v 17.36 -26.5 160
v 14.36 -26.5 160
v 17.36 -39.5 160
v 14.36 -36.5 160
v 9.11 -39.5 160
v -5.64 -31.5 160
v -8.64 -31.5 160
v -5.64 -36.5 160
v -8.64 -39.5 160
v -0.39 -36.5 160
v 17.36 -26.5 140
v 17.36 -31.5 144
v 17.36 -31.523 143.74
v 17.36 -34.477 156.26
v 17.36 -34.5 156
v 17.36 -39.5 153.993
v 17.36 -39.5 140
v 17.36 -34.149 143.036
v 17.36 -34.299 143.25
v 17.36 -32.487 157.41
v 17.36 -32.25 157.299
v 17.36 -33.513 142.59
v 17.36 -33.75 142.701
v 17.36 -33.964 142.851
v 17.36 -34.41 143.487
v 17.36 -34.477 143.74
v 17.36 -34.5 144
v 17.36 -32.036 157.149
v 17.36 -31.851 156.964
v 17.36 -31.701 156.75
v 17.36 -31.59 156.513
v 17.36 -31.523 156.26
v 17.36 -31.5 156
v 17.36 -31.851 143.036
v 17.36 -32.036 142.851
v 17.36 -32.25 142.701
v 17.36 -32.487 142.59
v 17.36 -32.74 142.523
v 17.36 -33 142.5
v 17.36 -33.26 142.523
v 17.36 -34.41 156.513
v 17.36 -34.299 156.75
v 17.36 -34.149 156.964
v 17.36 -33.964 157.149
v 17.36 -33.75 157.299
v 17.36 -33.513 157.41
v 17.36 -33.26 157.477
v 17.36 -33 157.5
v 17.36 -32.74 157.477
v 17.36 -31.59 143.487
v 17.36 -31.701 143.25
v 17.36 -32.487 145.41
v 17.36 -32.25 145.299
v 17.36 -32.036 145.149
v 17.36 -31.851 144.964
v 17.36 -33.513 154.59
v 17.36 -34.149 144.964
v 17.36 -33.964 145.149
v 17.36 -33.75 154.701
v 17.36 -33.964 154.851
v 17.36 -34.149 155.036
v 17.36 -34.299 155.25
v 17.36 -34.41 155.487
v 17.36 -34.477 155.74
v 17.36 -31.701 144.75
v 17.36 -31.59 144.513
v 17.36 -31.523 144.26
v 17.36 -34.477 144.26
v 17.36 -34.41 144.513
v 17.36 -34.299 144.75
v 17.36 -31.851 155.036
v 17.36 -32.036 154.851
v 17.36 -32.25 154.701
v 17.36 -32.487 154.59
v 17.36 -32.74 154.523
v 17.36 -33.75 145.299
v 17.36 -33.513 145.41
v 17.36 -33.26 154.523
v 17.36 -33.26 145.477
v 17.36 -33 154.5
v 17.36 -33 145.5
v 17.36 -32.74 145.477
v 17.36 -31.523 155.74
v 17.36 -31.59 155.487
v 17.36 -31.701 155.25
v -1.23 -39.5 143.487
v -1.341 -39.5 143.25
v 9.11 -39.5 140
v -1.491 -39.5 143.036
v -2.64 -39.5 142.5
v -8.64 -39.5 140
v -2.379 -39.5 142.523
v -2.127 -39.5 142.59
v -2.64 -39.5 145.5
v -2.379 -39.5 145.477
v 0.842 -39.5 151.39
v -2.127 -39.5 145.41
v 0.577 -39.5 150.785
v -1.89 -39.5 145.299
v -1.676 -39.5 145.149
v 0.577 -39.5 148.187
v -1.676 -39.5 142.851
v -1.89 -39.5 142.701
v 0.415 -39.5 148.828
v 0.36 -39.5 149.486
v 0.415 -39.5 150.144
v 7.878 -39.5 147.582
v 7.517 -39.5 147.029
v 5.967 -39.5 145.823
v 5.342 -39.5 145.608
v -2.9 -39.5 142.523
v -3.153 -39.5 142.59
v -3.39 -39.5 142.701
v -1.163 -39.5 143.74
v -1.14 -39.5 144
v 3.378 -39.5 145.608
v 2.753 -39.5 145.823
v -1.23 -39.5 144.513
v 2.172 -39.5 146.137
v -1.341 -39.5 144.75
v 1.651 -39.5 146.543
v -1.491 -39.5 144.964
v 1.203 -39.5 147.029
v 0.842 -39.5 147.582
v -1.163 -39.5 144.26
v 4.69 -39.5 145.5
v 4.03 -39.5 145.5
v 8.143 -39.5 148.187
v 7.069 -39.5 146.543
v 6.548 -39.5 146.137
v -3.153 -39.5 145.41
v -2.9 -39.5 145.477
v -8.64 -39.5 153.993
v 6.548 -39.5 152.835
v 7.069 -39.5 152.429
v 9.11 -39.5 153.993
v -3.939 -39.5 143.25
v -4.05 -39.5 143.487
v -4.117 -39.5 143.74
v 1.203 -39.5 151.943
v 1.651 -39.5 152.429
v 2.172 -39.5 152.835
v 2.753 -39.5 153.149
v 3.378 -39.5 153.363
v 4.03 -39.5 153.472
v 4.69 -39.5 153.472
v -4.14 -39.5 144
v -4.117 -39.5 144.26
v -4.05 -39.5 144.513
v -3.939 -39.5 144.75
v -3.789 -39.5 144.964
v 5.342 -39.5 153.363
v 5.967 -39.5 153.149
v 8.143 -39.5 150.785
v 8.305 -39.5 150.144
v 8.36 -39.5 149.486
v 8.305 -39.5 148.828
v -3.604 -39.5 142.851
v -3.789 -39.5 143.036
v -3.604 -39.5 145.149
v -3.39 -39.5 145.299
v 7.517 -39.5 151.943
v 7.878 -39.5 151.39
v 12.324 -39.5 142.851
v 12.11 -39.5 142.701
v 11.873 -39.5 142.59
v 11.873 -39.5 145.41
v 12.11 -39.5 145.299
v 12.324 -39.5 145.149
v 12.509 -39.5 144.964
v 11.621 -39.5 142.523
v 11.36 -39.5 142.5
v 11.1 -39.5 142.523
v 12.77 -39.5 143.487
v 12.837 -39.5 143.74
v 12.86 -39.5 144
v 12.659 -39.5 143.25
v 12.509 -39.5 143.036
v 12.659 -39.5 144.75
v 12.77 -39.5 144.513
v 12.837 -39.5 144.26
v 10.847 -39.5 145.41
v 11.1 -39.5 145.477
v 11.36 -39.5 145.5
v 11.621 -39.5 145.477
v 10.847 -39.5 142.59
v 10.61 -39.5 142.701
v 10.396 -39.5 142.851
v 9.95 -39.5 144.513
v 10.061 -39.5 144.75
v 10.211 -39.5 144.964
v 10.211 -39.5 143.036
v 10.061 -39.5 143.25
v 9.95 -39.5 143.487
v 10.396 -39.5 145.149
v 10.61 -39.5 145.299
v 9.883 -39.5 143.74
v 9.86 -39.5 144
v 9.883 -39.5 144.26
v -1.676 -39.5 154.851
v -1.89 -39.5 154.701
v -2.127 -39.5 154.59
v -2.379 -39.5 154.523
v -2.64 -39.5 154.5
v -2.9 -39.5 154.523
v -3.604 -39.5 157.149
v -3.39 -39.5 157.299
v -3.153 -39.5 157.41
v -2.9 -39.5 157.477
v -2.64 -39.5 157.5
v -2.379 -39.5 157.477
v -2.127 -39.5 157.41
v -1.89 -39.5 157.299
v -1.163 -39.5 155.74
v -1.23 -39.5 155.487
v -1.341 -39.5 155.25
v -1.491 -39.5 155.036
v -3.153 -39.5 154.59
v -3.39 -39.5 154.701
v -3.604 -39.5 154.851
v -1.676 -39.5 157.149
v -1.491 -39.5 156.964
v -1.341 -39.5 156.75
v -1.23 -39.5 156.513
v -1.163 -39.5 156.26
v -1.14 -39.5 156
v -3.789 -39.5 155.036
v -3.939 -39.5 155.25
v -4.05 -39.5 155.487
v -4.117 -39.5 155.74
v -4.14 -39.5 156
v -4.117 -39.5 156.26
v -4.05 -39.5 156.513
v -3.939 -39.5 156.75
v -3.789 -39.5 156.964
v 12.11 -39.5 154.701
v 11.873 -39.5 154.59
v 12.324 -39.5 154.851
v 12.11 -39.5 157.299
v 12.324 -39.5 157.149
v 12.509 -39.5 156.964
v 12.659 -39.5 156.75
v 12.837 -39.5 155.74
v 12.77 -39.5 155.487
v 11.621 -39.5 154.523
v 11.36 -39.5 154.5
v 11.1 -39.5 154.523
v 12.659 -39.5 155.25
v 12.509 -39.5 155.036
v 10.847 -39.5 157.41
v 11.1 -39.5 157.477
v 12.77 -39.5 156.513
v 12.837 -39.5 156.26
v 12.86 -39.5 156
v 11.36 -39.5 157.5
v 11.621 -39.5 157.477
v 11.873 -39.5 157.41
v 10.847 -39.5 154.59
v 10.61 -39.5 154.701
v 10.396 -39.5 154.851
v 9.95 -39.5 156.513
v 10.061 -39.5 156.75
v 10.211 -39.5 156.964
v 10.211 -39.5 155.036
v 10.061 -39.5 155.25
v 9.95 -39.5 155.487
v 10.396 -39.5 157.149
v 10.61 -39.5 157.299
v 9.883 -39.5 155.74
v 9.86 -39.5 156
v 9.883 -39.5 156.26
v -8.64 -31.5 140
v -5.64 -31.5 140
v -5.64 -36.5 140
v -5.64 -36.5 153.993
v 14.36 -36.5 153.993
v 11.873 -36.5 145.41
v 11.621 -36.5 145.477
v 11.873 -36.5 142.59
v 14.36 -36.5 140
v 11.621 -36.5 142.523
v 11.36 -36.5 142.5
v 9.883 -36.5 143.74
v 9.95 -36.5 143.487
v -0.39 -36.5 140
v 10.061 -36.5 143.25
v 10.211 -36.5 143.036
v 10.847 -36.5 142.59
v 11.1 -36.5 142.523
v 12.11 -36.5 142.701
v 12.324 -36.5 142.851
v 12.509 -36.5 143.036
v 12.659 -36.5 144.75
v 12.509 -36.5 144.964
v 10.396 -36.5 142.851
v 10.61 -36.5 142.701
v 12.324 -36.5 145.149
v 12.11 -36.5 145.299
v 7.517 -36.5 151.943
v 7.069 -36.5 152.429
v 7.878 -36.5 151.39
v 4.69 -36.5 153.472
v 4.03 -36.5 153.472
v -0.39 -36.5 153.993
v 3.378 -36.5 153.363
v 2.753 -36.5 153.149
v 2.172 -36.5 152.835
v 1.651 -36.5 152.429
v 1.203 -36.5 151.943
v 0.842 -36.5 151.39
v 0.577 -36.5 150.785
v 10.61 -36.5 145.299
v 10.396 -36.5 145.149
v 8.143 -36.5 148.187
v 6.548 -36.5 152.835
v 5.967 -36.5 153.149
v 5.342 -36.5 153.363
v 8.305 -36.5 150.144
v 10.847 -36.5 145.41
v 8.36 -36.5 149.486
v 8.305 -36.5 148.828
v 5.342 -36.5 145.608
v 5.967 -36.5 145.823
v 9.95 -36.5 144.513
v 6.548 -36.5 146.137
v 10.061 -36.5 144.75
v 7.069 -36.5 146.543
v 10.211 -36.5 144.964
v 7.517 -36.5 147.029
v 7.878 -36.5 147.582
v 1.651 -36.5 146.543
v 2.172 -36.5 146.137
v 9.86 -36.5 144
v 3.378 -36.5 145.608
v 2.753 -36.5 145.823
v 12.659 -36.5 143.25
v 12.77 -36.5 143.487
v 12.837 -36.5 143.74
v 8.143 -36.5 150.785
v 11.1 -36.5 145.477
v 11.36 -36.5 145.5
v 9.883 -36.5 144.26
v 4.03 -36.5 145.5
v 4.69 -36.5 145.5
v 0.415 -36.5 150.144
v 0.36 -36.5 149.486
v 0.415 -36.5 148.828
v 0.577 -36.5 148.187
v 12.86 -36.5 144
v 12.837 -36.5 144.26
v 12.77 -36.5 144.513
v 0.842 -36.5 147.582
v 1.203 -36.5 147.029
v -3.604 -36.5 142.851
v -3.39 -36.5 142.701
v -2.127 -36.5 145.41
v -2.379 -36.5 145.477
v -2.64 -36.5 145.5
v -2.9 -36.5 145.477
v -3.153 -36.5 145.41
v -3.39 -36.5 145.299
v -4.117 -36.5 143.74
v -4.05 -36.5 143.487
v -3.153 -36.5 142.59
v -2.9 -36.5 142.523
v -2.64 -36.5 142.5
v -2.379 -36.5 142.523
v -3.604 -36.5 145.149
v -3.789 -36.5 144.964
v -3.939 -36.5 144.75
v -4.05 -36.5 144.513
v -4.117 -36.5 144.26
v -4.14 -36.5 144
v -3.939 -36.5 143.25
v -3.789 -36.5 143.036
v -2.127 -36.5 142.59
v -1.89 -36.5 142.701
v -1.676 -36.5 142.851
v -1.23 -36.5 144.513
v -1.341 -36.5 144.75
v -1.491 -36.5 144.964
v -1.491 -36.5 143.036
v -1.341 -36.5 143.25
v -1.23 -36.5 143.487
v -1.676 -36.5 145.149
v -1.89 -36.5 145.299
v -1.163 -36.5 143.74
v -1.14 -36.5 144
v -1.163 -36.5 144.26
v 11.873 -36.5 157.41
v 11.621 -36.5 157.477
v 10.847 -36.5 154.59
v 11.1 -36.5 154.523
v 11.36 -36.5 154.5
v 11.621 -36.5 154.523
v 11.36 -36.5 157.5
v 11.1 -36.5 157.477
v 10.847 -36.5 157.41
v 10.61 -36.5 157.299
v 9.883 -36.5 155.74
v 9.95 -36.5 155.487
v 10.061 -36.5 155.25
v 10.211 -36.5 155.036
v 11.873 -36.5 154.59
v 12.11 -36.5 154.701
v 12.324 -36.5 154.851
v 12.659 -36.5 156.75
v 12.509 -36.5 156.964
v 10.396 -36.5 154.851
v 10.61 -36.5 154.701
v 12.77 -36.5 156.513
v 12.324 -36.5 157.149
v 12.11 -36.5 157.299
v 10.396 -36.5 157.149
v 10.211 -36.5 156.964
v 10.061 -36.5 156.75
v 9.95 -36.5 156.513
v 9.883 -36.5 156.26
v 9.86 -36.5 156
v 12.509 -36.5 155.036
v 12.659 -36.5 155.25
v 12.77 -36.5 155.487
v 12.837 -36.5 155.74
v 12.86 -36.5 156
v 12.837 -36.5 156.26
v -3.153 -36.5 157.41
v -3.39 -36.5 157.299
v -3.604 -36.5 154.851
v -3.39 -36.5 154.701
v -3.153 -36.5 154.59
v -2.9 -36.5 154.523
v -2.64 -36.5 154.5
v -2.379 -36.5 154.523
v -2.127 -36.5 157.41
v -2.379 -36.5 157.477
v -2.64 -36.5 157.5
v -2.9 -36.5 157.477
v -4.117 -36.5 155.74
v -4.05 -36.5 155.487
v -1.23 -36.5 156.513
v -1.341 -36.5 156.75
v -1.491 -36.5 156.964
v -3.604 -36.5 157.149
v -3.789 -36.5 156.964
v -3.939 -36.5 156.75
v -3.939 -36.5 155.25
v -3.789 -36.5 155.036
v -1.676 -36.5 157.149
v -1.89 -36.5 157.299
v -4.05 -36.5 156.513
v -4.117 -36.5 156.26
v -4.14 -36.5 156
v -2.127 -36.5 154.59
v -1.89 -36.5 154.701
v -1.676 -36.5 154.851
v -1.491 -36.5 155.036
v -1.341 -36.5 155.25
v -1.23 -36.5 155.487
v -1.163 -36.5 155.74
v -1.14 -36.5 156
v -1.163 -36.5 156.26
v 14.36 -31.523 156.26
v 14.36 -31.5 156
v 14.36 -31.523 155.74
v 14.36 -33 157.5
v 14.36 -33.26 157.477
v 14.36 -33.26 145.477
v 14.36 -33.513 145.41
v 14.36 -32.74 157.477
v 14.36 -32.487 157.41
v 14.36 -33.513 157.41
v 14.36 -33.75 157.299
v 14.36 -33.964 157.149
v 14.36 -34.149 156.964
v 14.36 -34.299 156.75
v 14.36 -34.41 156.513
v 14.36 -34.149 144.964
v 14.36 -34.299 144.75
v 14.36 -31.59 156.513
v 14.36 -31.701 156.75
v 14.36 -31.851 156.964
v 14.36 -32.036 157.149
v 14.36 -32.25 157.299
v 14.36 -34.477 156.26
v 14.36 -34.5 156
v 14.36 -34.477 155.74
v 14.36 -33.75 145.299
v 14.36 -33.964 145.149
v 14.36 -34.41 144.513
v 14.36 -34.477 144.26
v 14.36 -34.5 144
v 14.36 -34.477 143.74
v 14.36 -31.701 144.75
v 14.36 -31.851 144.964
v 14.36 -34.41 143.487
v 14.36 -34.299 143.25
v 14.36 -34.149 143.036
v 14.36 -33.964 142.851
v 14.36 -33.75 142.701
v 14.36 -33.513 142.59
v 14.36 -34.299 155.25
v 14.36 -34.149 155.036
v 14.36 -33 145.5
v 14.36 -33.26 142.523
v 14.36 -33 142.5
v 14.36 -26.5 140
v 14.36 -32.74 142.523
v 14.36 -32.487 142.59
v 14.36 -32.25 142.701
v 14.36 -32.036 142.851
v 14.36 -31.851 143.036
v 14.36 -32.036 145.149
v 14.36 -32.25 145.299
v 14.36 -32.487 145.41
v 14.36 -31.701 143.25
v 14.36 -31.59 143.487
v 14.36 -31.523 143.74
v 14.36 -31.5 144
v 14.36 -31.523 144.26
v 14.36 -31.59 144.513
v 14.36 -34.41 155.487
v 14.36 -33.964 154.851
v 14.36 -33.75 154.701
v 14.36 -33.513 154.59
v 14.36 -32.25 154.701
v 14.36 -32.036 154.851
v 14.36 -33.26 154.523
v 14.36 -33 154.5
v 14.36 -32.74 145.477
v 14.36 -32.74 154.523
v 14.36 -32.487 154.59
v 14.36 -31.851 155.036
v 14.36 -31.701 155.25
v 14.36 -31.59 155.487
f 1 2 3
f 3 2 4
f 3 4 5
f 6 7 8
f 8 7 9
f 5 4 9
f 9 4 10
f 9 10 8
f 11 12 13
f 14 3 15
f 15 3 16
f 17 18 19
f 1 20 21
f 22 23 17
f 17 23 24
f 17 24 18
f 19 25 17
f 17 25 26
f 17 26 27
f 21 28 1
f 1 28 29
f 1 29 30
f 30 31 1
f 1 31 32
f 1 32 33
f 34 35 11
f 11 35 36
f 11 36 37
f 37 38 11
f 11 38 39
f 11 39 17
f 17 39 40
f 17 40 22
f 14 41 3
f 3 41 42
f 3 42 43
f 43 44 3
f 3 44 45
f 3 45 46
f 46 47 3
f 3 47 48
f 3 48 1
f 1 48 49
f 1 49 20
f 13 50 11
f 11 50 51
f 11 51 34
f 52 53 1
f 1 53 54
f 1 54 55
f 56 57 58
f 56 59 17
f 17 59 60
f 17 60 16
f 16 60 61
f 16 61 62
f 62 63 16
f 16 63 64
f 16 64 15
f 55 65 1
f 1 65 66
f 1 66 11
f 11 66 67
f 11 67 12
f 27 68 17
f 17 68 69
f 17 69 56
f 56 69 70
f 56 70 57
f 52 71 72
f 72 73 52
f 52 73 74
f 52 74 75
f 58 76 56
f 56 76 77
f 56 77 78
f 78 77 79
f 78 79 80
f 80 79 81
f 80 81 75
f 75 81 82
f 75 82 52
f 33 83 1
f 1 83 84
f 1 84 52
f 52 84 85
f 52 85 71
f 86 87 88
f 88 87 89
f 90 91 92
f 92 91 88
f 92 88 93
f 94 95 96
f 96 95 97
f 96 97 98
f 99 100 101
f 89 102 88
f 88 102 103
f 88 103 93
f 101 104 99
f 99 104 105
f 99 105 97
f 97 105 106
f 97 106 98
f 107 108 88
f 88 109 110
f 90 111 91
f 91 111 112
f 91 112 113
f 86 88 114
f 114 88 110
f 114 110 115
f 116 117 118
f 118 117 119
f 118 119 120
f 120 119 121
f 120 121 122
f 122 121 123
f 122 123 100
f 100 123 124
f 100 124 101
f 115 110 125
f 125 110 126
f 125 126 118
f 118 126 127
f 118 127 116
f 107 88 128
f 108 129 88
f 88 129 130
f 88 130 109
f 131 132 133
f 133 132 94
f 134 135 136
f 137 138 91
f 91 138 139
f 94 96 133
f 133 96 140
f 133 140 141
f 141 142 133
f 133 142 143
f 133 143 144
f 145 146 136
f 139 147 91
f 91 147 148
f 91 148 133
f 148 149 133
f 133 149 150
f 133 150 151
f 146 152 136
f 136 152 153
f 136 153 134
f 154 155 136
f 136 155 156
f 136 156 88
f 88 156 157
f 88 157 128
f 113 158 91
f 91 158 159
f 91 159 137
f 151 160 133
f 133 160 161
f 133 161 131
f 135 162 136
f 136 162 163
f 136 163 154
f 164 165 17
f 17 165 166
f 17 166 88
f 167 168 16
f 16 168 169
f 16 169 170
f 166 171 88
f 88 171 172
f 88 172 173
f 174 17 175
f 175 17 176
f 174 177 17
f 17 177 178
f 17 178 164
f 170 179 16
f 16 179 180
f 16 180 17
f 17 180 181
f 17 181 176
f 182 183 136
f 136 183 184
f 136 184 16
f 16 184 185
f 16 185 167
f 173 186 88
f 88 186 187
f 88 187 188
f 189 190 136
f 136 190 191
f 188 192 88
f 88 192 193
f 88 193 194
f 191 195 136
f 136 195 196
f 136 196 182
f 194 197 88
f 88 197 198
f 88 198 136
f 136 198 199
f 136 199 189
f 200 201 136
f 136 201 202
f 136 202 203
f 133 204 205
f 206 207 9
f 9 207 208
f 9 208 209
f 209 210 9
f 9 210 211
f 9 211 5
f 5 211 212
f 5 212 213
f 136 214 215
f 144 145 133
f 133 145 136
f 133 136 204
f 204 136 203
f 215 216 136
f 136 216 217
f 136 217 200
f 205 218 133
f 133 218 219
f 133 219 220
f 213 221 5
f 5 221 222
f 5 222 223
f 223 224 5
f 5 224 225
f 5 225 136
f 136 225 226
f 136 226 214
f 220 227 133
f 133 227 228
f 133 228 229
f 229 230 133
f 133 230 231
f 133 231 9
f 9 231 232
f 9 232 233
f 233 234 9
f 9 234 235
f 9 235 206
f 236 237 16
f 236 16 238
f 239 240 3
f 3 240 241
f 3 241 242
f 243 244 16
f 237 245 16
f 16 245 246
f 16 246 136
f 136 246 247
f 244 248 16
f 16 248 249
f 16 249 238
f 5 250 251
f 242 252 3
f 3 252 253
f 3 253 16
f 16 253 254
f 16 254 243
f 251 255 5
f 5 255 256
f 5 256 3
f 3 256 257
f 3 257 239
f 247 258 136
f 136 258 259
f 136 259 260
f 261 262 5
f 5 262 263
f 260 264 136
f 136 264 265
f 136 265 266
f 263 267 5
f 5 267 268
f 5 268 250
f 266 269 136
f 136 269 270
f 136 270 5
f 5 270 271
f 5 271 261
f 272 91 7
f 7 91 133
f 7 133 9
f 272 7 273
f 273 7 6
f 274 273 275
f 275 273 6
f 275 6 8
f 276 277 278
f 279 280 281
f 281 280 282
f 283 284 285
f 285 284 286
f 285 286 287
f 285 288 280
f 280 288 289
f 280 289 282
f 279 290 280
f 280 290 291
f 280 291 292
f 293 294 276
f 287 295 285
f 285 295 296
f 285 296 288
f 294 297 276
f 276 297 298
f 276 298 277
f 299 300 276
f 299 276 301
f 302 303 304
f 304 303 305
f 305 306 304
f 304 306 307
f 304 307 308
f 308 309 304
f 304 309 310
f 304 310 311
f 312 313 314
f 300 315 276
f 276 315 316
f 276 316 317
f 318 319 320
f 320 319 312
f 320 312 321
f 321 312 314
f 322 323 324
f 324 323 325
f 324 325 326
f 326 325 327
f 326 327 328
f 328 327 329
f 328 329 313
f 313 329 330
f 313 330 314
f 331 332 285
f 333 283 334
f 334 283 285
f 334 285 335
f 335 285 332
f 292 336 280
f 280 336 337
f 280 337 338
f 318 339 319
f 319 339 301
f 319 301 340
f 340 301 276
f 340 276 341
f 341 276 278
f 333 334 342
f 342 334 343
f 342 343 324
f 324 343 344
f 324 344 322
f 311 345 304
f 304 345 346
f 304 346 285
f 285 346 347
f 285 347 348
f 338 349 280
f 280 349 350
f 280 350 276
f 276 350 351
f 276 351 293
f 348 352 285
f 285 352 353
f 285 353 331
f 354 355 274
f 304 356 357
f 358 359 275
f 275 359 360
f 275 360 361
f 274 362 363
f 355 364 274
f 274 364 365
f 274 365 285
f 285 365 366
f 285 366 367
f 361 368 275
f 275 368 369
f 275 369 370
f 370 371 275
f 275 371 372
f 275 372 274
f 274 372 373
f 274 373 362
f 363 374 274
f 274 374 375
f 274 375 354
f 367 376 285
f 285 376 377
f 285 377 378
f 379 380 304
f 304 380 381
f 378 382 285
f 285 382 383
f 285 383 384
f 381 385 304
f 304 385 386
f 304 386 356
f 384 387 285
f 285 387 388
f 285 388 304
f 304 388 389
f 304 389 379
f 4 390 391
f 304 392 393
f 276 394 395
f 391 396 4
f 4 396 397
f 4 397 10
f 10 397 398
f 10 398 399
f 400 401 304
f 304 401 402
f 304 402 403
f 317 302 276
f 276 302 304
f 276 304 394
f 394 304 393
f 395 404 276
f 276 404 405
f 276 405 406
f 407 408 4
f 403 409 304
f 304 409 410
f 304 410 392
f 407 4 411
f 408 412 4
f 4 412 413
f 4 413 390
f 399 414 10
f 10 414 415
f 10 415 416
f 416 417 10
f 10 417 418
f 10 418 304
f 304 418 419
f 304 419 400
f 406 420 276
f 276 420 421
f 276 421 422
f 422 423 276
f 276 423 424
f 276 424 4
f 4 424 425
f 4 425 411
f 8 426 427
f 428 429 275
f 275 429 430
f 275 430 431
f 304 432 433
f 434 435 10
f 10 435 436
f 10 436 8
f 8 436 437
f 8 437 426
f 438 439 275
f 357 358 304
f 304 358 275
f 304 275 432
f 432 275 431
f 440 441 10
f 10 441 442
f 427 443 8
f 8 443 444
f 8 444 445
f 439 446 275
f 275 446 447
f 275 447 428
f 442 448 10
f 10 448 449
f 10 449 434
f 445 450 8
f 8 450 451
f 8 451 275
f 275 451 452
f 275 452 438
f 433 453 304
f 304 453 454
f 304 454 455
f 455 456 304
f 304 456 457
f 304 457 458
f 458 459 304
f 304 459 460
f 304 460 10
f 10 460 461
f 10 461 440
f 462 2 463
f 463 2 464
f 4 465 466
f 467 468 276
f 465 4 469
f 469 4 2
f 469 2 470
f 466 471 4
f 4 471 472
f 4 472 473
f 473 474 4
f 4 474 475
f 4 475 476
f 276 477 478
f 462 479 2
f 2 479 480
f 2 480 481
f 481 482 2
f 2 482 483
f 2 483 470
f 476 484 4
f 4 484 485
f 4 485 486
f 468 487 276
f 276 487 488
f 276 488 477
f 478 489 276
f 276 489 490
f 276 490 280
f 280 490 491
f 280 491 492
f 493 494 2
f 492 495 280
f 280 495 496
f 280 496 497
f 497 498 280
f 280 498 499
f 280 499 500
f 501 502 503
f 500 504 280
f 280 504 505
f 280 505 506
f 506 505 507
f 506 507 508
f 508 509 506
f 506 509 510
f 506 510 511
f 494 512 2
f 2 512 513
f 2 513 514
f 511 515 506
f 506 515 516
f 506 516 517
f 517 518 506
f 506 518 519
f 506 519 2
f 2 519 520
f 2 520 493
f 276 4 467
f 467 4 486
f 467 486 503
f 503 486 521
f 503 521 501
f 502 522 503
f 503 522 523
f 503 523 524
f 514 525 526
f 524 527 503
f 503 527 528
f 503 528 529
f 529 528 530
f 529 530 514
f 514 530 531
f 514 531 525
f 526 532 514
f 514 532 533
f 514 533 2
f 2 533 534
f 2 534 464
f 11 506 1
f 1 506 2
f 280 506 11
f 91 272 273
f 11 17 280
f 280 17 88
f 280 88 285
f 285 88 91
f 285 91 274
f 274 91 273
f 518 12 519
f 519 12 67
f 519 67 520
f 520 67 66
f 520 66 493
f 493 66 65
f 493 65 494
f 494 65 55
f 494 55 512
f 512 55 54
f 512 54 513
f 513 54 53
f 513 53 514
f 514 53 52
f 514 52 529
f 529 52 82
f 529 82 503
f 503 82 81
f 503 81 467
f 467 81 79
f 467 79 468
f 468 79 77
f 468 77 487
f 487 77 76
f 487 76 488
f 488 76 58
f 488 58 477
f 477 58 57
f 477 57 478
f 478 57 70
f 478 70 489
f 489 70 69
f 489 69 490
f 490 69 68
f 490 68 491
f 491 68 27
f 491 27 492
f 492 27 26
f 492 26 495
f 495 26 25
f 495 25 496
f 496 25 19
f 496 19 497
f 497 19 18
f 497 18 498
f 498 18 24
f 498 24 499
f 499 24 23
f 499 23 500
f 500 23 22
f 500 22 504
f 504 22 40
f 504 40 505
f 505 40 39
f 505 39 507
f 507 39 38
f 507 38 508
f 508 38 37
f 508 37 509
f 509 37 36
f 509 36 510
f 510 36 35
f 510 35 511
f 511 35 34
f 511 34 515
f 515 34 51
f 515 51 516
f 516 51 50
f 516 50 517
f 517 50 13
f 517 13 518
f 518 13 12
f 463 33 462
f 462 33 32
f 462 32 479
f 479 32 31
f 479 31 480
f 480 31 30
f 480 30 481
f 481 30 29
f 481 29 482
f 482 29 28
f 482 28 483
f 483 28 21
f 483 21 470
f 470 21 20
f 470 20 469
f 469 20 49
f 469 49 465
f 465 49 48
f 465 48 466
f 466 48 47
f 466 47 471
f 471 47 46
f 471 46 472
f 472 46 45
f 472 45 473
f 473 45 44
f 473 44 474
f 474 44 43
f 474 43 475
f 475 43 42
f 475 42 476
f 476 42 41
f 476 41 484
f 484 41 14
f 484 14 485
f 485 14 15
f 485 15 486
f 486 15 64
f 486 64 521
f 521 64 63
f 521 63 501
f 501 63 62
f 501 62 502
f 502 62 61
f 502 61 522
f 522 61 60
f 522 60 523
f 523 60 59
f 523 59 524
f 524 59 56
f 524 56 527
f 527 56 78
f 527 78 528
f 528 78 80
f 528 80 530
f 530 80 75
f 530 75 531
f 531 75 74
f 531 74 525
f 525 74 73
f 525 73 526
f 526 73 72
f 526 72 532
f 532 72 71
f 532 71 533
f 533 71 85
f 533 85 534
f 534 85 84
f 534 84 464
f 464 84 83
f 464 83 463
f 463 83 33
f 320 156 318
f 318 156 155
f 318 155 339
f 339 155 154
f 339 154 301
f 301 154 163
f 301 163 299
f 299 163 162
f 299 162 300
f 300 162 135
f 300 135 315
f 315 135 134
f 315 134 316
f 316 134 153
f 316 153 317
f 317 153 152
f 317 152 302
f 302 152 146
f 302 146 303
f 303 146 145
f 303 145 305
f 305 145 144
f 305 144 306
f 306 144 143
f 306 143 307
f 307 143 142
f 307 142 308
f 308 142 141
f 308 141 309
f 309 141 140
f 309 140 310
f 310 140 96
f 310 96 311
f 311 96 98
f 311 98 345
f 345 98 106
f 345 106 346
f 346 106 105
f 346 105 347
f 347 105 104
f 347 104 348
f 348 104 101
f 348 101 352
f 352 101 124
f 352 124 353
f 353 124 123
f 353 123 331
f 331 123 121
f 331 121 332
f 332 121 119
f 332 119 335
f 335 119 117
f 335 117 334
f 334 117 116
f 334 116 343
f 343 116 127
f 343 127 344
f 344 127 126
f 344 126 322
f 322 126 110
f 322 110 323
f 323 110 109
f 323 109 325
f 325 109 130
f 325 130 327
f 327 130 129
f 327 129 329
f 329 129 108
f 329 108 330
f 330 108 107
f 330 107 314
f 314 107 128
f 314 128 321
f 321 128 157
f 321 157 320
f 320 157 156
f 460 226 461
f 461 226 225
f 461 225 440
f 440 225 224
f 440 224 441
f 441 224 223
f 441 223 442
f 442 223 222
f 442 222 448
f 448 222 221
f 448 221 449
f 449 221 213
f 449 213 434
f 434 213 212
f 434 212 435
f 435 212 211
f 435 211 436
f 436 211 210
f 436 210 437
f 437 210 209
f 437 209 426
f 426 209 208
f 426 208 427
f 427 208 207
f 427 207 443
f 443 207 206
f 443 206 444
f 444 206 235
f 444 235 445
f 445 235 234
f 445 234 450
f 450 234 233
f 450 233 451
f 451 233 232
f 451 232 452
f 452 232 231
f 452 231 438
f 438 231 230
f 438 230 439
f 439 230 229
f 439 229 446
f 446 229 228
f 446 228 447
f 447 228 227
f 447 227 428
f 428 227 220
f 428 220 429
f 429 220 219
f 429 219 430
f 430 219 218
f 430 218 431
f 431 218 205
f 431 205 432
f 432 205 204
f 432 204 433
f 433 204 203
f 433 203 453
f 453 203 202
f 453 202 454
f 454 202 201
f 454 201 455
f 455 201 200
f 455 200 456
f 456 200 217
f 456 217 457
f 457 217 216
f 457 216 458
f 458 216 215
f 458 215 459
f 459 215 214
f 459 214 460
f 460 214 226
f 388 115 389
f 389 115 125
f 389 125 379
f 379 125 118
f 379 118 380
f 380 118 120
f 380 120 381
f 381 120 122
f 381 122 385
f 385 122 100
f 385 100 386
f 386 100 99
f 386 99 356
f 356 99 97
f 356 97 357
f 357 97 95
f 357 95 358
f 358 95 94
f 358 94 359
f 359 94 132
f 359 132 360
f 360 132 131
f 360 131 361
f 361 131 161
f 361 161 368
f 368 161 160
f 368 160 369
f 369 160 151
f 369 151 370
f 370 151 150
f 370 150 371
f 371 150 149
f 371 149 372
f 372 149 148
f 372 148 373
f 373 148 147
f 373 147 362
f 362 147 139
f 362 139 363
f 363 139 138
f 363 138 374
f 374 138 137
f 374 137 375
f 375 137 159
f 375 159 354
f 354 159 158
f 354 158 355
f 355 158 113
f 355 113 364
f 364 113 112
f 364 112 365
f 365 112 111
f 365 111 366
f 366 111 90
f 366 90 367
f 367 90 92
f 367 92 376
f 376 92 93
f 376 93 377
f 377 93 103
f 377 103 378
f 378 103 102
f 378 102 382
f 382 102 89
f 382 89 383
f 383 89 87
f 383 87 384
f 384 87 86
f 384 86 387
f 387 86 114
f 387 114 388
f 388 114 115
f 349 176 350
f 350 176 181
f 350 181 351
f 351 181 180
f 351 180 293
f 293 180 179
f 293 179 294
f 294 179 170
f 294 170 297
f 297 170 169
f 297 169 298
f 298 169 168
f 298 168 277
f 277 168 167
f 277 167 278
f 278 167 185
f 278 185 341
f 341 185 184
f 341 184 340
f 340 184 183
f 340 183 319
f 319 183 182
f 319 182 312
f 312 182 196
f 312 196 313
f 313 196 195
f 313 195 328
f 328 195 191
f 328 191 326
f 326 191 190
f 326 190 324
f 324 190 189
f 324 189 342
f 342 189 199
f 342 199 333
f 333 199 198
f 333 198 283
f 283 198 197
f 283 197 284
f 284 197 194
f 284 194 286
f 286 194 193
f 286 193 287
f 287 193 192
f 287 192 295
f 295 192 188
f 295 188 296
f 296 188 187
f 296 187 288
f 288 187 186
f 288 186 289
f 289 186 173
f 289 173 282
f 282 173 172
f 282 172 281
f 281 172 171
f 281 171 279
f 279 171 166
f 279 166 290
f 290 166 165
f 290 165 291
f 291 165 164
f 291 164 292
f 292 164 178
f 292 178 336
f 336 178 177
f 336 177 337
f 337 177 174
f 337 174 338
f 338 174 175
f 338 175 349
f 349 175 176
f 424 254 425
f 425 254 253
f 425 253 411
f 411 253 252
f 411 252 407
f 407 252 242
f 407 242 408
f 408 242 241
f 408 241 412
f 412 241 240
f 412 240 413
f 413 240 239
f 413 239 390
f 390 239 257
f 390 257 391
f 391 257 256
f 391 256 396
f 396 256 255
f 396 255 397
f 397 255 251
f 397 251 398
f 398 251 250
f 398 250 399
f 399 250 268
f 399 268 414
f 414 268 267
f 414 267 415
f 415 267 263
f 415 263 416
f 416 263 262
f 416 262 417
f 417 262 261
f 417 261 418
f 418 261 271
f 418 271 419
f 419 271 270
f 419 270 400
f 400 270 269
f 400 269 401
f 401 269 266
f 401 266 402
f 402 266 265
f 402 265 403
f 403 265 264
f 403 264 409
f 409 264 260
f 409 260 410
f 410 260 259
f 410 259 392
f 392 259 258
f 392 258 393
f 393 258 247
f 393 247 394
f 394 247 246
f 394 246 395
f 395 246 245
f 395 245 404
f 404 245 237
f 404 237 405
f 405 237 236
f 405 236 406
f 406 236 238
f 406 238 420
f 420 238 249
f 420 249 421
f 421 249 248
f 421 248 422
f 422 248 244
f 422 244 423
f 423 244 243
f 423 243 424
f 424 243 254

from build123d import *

# Parameters (mm, degrees)
EXTRUDE_1_DEPTH          = 160
CUT_EXTRUDE_2_DEPTH      = 167.400871392
CUT_EXTRUDE_2_DEPTH_BACK = 167.400871392
SKETCH_5_R               = 1.5
CUT_EXTRUDE_3_DEPTH      = 3
SKETCH_6_R               = 1.5
SKETCH_6_R_2             = 4
CUT_EXTRUDE_4_DEPTH      = 3


with BuildPart() as part:
    # 草图1 → 凸台-拉伸1 (new body)
    with BuildSketch(Plane.XY):
        Polygon((-8.639969484, -35.5), (-8.639969484, -39.5), (17.360030516, -39.5), (17.360030516, 39.5), (-8.639969484, 39.5), (-8.639969484, 35.5), (-8.639969484, 31.5), (-5.639969484, 31.5), (-5.639969484, 36.5), (14.360030516, 36.5), (14.360030516, -36.5), (-5.639969484, -36.5), (-5.639969484, -31.5), (-8.639969484, -31.5), align=None)
    extrude(amount=EXTRUDE_1_DEPTH)

    # 草图4 → 切除-拉伸2 (cut, two sides: drawn at the far end of the back side and taken through both)
    with BuildSketch(Plane.ZY.offset(-14.360030516).offset(-CUT_EXTRUDE_2_DEPTH_BACK)):
        Polygon((140, 26.5), (160, 26.5), (160, -26.5), (140, -26.5), (140, -45.304030301), (130, -45.304030301), (130, -26.5), (110, -26.5), (110, -45.304030301), (100, -45.304030301), (100, -26.5), (80, -26.5), (80, -45.304030301), (72.341947093, -45.304030301), (72.341947093, -47.20233834), (-21.576648983, -47.20233834), (-21.576648983, 47.202965292), (72.341947093, 47.202965292), (72.341947093, 45.304030301), (80, 45.304030301), (80, 26.5), (100, 26.5), (100, 45.304030301), (110, 45.304030301), (110, 26.5), (130, 26.5), (130, 45.304030301), (140, 45.304030301), align=None)
    extrude(amount=CUT_EXTRUDE_2_DEPTH + CUT_EXTRUDE_2_DEPTH_BACK, mode=Mode.SUBTRACT)


with BuildPart() as cut_extrude_2_piece_1:
    # of the separate pieces the step leaves, piece 1, a body of its own (cut_extrude_2_pieces)
    add(part.part.solids().sort_by_distance((17.360030516, 39.5, 80))[0])


with BuildPart() as cut_extrude_2_piece_2:
    # of the separate pieces the step leaves, piece 2, a body of its own (cut_extrude_2_pieces)
    add(part.part.solids().sort_by_distance((17.360030516, 39.5, 110))[0])


with BuildPart() as cut_extrude_2_piece_3:
    # of the separate pieces the step leaves, piece 3, a body of its own (cut_extrude_2_pieces)
    add(part.part.solids().sort_by_distance((17.360030516, -39.5, 140))[0])


with BuildPart() as cut_extrude_2_piece_4:
    # of the separate pieces the step leaves, piece 4, a body of its own (cut_extrude_2_pieces)
    add(part.part.solids().sort_by_distance((17.360030516, 39.5, 140))[0])


with BuildPart() as cut_extrude_2_piece_5:
    # of the separate pieces the step leaves, piece 5, a body of its own (cut_extrude_2_pieces)
    add(part.part.solids().sort_by_distance((17.360030516, -39.5, 110))[0])


with BuildPart() as cut_extrude_2_piece_6:
    # of the separate pieces the step leaves, piece 6, a body of its own (cut_extrude_2_pieces)
    add(part.part.solids().sort_by_distance((-8.639969484, -39.5, 80))[0])


with BuildPart() as cut_extrude_3_tool:
    # 草图5 → 切除-拉伸3 (new body)
    with BuildSketch(Plane(origin=(17.360030516, 0, 0), x_dir=(0, 0, -1), z_dir=(1, 0, 0))):
        with Locations(Location((-96, -33, 0), (0, 0, 90))):
            Circle(SKETCH_5_R)
        with Locations(Location((-84, -33, 0), (0, 0, 90))):
            Circle(SKETCH_5_R)
        with Locations(Location((-126, -33, 0), (0, 0, 90))):
            Circle(SKETCH_5_R)
        with Locations(Location((-114, -33, 0), (0, 0, 90))):
            Circle(SKETCH_5_R)
        with Locations(Location((-156, -33, 0), (0, 0, 90))):
            Circle(SKETCH_5_R)
        with Locations(Location((-144, -33, 0), (0, 0, 90))):
            Circle(SKETCH_5_R)
        with Locations((-84, 33)):
            Circle(SKETCH_5_R)
        with Locations((-96, 33)):
            Circle(SKETCH_5_R)
        with Locations((-114, 33)):
            Circle(SKETCH_5_R)
        with Locations((-126, 33)):
            Circle(SKETCH_5_R)
        with Locations((-144, 33)):
            Circle(SKETCH_5_R)
        with Locations((-156, 33)):
            Circle(SKETCH_5_R)
    extrude(amount=-CUT_EXTRUDE_3_DEPTH)


with BuildPart() as cut_extrude_2_piece_1_1:
    add(cut_extrude_2_piece_1.part)

    # 切除-拉伸3: cut by cut_extrude_3_tool
    add(cut_extrude_3_tool.part, mode=Mode.SUBTRACT)


with BuildPart() as cut_extrude_2_piece_2_1:
    add(cut_extrude_2_piece_2.part)

    # 切除-拉伸3: cut by cut_extrude_3_tool
    add(cut_extrude_3_tool.part, mode=Mode.SUBTRACT)


with BuildPart() as cut_extrude_2_piece_3_1:
    add(cut_extrude_2_piece_3.part)

    # 切除-拉伸3: cut by cut_extrude_3_tool
    add(cut_extrude_3_tool.part, mode=Mode.SUBTRACT)


with BuildPart() as cut_extrude_2_piece_4_1:
    add(cut_extrude_2_piece_4.part)

    # 切除-拉伸3: cut by cut_extrude_3_tool
    add(cut_extrude_3_tool.part, mode=Mode.SUBTRACT)


with BuildPart() as cut_extrude_2_piece_5_1:
    add(cut_extrude_2_piece_5.part)

    # 切除-拉伸3: cut by cut_extrude_3_tool
    add(cut_extrude_3_tool.part, mode=Mode.SUBTRACT)


with BuildPart() as cut_extrude_2_piece_6_1:
    add(cut_extrude_2_piece_6.part)

    # 切除-拉伸3: cut by cut_extrude_3_tool
    add(cut_extrude_3_tool.part, mode=Mode.SUBTRACT)


with BuildPart() as cut_extrude_4_tool:
    # 草图6 → 切除-拉伸4 (new body)
    with BuildSketch(Plane.XZ.offset(39.5)):
        with Locations((11.360030516, 96)):
            Circle(SKETCH_6_R)
        with Locations((11.360030516, 84)):
            Circle(SKETCH_6_R)
        with Locations((-2.639969484, 84)):
            Circle(SKETCH_6_R)
        with Locations((-2.639969484, 96)):
            Circle(SKETCH_6_R)
        with Locations((-2.639969484, 126)):
            Circle(SKETCH_6_R)
        with Locations((-2.639969484, 114)):
            Circle(SKETCH_6_R)
        with Locations((11.360030516, 114)):
            Circle(SKETCH_6_R)
        with Locations((11.360030516, 126)):
            Circle(SKETCH_6_R)
        with Locations((-2.639969484, 156)):
            Circle(SKETCH_6_R)
        with Locations((-2.639969484, 144)):
            Circle(SKETCH_6_R)
        with Locations((11.360030516, 144)):
            Circle(SKETCH_6_R)
        with Locations((11.360030516, 156)):
            Circle(SKETCH_6_R)
        with Locations((4.360030516, 89.485879771)):
            Circle(SKETCH_6_R_2)
        with Locations((4.360030516, 119.485879771)):
            Circle(SKETCH_6_R_2)
        with Locations((4.360030516, 149.485879771)):
            Circle(SKETCH_6_R_2)
    cut_extrude_4 = extrude(amount=-CUT_EXTRUDE_4_DEPTH)


with BuildPart() as cut_extrude_2_piece_3_2:
    add(cut_extrude_2_piece_3_1.part)

    # 切除-拉伸4: cut by cut_extrude_4_tool
    add(cut_extrude_4_tool.part, mode=Mode.SUBTRACT)


with BuildPart() as cut_extrude_2_piece_5_2:
    add(cut_extrude_2_piece_5_1.part)

    # 切除-拉伸4: cut by cut_extrude_4_tool
    add(cut_extrude_4_tool.part, mode=Mode.SUBTRACT)


with BuildPart() as cut_extrude_2_piece_6_2:
    add(cut_extrude_2_piece_6_1.part)

    # 切除-拉伸4: cut by cut_extrude_4_tool
    add(cut_extrude_4_tool.part, mode=Mode.SUBTRACT)


with BuildPart() as mirror_1_tool:
    # 镜向1: 切除-拉伸4 across plane
    add(cut_extrude_4.mirror(Plane.ZX))


with BuildPart() as cut_extrude_2_piece_1_2:
    add(cut_extrude_2_piece_1_1.part)

    # 镜向1: cut by mirror_1_tool
    add(mirror_1_tool.part, mode=Mode.SUBTRACT)


with BuildPart() as cut_extrude_2_piece_2_2:
    add(cut_extrude_2_piece_2_1.part)

    # 镜向1: cut by mirror_1_tool
    add(mirror_1_tool.part, mode=Mode.SUBTRACT)


with BuildPart() as cut_extrude_2_piece_4_2:
    add(cut_extrude_2_piece_4_1.part)

    # 镜向1: cut by mirror_1_tool
    add(mirror_1_tool.part, mode=Mode.SUBTRACT)


solid = cut_extrude_2_piece_3_2.part
